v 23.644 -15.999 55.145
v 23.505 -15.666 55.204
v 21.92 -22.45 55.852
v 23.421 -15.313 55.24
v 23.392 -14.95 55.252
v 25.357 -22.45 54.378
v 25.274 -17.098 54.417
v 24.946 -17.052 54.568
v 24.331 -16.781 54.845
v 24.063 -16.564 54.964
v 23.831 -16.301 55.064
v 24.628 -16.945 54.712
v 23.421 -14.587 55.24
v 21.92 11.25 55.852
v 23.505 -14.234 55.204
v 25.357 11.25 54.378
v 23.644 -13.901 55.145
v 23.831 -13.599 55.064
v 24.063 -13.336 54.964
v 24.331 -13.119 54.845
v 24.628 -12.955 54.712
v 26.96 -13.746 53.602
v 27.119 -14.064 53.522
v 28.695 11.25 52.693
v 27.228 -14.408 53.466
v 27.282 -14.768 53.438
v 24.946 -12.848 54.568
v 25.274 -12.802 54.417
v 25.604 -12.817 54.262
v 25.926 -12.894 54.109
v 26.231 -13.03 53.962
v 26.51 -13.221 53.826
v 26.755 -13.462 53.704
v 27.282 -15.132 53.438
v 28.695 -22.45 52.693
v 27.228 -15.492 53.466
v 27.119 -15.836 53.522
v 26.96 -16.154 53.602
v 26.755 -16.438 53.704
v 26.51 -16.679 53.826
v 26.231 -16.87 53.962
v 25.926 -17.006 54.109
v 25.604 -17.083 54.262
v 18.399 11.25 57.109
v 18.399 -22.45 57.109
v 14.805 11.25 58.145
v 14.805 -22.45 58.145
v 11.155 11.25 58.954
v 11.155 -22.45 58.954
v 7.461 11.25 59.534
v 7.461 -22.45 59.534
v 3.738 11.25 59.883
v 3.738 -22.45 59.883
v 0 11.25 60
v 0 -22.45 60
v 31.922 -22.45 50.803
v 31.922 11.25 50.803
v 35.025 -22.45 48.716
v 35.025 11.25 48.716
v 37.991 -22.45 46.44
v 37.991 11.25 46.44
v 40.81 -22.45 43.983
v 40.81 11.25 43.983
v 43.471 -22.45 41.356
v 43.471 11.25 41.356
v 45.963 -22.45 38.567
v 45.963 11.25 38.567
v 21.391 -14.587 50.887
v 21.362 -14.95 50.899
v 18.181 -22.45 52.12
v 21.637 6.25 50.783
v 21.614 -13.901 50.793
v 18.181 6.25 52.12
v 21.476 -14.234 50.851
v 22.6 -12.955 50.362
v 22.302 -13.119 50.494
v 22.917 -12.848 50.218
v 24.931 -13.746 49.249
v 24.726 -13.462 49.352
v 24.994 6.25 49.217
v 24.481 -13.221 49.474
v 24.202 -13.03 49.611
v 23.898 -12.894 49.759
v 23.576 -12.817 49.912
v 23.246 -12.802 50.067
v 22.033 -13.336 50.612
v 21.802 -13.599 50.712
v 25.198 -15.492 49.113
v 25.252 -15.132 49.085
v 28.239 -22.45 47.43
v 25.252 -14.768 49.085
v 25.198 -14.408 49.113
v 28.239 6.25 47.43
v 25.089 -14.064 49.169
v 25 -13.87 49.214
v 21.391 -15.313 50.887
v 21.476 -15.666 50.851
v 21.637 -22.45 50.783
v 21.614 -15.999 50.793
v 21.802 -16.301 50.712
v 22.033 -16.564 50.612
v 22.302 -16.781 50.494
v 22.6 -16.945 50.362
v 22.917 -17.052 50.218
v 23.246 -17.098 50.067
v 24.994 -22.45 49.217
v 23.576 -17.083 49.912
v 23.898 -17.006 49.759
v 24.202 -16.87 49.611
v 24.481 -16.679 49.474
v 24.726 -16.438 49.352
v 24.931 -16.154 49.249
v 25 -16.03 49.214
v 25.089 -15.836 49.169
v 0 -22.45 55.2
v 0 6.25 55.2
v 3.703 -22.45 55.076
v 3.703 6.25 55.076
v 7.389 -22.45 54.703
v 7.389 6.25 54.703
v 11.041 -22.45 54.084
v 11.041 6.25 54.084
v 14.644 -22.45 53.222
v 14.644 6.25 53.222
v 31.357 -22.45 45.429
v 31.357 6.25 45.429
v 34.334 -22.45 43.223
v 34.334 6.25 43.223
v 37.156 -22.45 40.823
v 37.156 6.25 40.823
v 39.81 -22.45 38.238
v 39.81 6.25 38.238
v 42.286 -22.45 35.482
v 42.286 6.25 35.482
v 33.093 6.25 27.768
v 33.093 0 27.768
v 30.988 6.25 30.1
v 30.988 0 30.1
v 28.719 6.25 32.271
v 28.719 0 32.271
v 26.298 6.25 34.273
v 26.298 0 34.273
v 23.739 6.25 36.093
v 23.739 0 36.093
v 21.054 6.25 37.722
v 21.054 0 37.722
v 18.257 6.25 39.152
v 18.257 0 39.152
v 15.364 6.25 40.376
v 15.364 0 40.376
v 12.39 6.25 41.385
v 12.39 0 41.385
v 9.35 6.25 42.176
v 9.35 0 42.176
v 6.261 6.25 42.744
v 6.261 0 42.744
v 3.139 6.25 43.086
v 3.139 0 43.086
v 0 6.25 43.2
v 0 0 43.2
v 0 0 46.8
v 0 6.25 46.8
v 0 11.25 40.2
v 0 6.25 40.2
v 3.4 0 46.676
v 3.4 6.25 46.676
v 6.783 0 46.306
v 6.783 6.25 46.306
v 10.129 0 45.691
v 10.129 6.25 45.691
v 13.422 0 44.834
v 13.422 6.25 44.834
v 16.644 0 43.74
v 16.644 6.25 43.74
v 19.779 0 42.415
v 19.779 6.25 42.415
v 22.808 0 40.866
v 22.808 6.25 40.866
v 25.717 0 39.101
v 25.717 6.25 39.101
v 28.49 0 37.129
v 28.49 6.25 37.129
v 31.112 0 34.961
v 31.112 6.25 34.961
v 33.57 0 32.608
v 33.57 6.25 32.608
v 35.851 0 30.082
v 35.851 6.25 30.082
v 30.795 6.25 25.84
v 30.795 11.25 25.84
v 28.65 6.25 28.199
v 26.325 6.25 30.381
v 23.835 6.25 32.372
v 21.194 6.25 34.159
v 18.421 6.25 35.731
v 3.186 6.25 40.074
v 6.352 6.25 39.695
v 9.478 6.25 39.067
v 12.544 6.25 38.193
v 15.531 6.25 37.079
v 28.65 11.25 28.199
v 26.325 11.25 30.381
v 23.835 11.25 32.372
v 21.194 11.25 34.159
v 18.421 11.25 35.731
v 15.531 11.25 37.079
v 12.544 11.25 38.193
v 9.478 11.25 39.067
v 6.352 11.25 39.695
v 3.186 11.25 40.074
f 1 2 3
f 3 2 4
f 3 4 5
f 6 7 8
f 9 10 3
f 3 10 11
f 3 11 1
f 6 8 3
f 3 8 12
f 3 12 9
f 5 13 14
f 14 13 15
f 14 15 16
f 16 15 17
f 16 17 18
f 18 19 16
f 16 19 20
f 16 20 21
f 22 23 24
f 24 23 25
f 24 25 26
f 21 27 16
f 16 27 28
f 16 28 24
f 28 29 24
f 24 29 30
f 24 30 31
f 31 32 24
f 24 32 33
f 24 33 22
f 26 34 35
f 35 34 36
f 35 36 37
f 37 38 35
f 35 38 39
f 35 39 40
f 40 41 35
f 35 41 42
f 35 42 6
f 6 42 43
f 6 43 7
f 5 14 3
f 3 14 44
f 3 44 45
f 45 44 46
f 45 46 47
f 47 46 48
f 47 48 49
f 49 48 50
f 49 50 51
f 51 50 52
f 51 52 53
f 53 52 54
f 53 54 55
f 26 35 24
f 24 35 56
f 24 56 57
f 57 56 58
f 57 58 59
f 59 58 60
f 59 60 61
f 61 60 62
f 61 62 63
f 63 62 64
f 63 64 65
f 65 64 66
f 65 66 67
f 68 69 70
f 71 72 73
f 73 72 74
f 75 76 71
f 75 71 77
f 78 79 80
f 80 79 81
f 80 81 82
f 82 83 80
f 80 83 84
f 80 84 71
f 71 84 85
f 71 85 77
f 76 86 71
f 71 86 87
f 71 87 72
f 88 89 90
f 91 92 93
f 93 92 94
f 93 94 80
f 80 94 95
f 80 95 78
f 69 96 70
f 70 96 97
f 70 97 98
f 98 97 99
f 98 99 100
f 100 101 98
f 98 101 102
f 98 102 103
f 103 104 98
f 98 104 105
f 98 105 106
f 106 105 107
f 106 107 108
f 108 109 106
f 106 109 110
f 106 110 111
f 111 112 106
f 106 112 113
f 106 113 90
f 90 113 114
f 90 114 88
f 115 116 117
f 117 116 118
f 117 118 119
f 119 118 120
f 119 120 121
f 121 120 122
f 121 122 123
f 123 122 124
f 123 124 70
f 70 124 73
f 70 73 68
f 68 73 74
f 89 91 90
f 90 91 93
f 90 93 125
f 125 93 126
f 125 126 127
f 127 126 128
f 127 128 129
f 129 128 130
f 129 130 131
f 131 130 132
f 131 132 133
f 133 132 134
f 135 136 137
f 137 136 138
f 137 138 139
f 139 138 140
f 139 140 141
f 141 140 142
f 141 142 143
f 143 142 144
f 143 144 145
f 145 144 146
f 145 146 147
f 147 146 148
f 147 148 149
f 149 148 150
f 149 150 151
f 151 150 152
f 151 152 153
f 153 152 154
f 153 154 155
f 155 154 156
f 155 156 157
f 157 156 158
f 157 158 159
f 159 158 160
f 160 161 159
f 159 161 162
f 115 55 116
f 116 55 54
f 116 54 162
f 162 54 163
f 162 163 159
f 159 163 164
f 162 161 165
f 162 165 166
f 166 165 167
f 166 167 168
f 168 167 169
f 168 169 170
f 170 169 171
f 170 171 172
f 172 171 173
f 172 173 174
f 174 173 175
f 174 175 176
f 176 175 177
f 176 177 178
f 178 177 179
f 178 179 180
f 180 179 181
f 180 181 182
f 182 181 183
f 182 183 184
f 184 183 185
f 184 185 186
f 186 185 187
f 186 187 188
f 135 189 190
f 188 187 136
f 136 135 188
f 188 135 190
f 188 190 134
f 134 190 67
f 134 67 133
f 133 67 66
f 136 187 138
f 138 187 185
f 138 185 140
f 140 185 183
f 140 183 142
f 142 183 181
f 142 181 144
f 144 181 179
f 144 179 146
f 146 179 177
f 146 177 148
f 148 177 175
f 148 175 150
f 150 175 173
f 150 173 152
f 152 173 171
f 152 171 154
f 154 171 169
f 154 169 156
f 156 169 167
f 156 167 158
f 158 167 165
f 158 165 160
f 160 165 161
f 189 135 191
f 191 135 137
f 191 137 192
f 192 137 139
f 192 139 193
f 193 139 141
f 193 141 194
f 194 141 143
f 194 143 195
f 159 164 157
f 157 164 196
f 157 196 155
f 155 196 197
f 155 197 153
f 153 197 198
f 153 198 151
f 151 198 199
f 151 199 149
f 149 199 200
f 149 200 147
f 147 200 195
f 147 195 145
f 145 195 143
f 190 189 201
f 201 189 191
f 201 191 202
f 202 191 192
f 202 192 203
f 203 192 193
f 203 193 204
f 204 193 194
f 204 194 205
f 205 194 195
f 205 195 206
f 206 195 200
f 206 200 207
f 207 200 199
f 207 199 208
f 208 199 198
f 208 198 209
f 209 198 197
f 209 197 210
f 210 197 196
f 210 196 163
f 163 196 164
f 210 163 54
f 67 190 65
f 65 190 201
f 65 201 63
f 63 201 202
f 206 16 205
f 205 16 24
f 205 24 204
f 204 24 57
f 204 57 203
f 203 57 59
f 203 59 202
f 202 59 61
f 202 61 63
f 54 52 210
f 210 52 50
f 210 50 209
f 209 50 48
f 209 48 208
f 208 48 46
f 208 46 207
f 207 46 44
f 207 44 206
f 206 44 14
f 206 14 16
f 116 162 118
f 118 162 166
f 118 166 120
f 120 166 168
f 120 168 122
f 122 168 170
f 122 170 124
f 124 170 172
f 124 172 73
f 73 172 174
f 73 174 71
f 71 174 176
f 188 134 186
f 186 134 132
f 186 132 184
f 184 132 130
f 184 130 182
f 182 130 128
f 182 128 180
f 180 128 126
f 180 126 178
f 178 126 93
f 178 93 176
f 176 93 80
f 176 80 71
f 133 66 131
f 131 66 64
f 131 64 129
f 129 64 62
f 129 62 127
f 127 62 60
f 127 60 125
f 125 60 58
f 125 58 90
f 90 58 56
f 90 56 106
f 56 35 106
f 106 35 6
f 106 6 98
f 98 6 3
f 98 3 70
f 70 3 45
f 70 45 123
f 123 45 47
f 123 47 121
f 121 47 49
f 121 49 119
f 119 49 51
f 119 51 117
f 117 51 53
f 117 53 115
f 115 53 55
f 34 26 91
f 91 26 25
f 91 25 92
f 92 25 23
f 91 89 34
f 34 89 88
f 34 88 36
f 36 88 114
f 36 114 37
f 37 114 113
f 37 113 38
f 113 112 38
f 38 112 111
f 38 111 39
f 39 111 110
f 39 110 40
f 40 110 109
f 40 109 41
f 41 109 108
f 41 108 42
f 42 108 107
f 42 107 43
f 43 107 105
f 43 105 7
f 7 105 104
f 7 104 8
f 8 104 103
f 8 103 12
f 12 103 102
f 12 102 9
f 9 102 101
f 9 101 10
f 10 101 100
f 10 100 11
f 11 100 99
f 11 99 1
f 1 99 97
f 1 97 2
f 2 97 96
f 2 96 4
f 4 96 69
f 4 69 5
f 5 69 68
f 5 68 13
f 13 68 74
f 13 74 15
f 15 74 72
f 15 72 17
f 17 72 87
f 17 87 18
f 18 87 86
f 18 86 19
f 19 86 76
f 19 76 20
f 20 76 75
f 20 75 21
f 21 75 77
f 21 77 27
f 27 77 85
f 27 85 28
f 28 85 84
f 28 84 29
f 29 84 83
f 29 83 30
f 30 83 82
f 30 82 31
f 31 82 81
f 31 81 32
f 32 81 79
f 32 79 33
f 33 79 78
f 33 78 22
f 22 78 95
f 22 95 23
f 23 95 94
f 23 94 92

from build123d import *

# Parameters (mm, degrees)
BOSS_EXTRUDE1_DEPTH   = 6.25
BOSS_EXTRUDE2_DEPTH   = 5
BOSS_EXTRUDE3_START   = 28.7
BOSS_EXTRUDE3_DEPTH   = 28.7
SKETCH4_R             = 2.15
M4_THROUGH_HOLE_DEPTH = 47.541927843


with BuildPart() as part:
    # Sketch1 → Boss-Extrude1 (new body)
    with BuildSketch(Plane(origin=(0, 0, 0), x_dir=(1, 0, 0), z_dir=(0, 1, 0))):
        with BuildLine():
            ThreePointArc((33.093119943, -27.768424738), (18.257108907, -39.1524964), (0, -43.2))
            Line((0, -43.2), (0, -46.8))
            ThreePointArc((0, -46.8), (19.778534649, -42.415204433), (35.850879938, -30.082460133))
            Line((35.850879938, -30.082460133), (33.093119943, -27.768424738))
        make_face()
    extrude(amount=BOSS_EXTRUDE1_DEPTH)

    # Sketch2 → Boss-Extrude2 (add)
    with BuildSketch(Plane(origin=(0, 6.25, 0), x_dir=(1, 0, 0), z_dir=(0, 1, 0))):
        with BuildLine():
            ThreePointArc((35.850879938, -30.082460133), (19.778534649, -42.415204433), (0, -46.8))
            Line((0, -46.8), (0, -60))
            ThreePointArc((0, -60), (25.357095704, -54.378467222), (45.962666587, -38.567256581))
            Line((45.962666587, -38.567256581), (35.850879938, -30.082460133))
        make_face()
        with BuildLine():
            Line((35.850879938, -30.082460133), (33.093119943, -27.768424738))
            ThreePointArc((33.093119943, -27.768424738), (18.257108907, -39.1524964), (0, -43.2))
            Line((0, -43.2), (0, -46.8))
            ThreePointArc((0, -46.8), (19.778534649, -42.415204433), (35.850879938, -30.082460133))
        make_face()
        with BuildLine():
            ThreePointArc((30.794986613, -25.840061909), (16.989254122, -36.433573039), (0, -40.2))
            Line((0, -40.2), (0, -43.2))
            ThreePointArc((0, -43.2), (18.257108907, -39.1524964), (33.093119943, -27.768424738))
            Line((33.093119943, -27.768424738), (30.794986613, -25.840061909))
        make_face()
    extrude(amount=BOSS_EXTRUDE2_DEPTH)

    # Sketch3 → Boss-Extrude3 (add)
    with BuildSketch(Plane(origin=(0, 6.25, 0), x_dir=(-1, 0, 0), z_dir=(0, -1, 0)).offset(BOSS_EXTRUDE3_START)):
        with BuildLine():
            ThreePointArc((0, -55.2), (-23.328528048, -50.028189844), (-42.28565326, -35.481876055))
            Line((-42.28565326, -35.481876055), (-45.962666587, -38.567256581))
            ThreePointArc((-45.962666587, -38.567256581), (-25.357095704, -54.378467222), (0, -60))
            Line((0, -60), (0, -55.2))
        make_face()
    extrude(amount=-BOSS_EXTRUDE3_DEPTH)

    # Sketch4 → M4-through hole (cut, through all)
    with BuildSketch(Plane(origin=(15.397493307, 0, 33.020030955), x_dir=(0.9063077870366493, 0, -0.42261826174070105), z_dir=(0.42261826174070105, 0, 0.9063077870366493))):
        with Locations(Location((0, -14.95, 0), (0, 0, 180))):
            Circle(SKETCH4_R)
    extrude(amount=M4_THROUGH_HOLE_DEPTH, mode=Mode.SUBTRACT)


solid = part.part
